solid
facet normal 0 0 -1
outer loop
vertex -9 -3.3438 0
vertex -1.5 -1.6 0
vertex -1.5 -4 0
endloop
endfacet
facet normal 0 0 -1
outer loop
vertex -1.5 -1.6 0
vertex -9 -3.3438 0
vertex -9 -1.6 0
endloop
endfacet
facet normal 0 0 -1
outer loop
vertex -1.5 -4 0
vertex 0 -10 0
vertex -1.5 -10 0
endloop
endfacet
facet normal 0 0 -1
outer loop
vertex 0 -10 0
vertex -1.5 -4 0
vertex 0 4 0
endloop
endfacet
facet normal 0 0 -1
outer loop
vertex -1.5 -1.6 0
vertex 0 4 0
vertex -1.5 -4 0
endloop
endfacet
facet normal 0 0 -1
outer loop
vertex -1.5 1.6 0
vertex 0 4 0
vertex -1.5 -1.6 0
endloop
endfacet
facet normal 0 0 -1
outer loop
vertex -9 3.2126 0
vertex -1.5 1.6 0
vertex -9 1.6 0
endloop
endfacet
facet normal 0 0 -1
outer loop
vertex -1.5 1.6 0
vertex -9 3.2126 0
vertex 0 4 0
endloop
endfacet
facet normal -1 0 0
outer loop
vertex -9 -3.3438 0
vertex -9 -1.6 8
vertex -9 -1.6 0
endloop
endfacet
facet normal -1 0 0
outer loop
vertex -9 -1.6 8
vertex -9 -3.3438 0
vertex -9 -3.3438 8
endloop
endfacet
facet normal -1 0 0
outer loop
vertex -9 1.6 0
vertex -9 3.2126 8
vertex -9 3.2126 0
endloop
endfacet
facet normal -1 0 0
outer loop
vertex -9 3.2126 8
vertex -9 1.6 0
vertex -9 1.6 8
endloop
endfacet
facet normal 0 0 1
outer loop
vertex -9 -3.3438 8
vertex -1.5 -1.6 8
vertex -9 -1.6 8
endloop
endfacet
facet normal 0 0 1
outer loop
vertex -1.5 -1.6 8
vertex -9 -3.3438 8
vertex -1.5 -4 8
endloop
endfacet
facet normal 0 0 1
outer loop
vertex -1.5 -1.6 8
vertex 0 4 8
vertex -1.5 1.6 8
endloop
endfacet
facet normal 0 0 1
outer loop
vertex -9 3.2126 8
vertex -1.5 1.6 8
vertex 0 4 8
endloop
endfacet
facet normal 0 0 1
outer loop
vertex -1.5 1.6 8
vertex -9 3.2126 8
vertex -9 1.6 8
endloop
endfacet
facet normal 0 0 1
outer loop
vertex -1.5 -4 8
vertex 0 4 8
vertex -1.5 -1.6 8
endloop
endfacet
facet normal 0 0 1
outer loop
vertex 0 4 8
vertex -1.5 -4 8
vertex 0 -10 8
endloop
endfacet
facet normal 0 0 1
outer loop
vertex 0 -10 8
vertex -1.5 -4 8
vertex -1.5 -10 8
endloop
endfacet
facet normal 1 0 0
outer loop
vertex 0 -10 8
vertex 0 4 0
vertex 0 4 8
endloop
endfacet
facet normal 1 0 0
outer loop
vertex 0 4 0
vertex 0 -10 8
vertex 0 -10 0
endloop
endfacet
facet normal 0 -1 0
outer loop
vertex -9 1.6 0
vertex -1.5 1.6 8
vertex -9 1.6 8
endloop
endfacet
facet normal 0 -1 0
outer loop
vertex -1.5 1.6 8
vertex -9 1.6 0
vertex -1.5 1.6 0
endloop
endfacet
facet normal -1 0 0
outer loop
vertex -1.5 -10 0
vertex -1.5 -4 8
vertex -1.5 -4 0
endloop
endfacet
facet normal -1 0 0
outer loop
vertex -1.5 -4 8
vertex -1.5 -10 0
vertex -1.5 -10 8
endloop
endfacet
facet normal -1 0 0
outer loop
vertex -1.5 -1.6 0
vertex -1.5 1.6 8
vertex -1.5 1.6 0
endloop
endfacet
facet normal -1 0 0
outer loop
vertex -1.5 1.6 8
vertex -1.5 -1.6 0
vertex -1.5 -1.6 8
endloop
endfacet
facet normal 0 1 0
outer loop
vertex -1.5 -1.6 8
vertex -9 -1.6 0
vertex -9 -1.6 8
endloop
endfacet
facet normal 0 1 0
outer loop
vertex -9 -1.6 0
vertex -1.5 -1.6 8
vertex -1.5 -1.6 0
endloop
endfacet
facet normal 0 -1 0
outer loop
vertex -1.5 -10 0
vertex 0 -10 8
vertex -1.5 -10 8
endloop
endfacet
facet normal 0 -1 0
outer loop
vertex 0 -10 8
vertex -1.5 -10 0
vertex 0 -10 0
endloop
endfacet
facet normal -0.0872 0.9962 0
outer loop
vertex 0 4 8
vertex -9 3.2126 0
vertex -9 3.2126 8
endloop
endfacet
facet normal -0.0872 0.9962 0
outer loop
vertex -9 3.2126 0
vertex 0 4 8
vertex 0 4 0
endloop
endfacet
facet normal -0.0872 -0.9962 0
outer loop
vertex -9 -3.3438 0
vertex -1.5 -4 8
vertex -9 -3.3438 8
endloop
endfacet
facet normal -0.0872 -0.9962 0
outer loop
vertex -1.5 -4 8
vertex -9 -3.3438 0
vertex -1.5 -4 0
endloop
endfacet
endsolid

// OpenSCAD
// small part that fits over the slider top to provide
// a better seating area for the end-stop switch

length = 8; // total length
basewidth = 8.;
baseheight = 9.;
overhang = 6.;
overdepth = 1.5;
slotwidth = 3.2;
slotdepth = 8;

rotate([0,-90,0]){
difference(){
union(){
    difference(){
        translate([0,-basewidth/2.,0])
            cube([length,basewidth,baseheight]);
        translate([0,-slotwidth/2.,1.5])
            cube([length,slotwidth,slotdepth]);
    }
 
    translate([0,-overhang-basewidth/2.,0])
        cube([length,basewidth+overhang,overdepth]);
 }
        translate([0,basewidth/2.,0])
            rotate([5,0,0])
                cube([length,2,10]);
   translate([0,-basewidth/2,overdepth])
        rotate([-5,0,0])
            translate([0,-2,0])
                cube([length,2,10]);

}
}
